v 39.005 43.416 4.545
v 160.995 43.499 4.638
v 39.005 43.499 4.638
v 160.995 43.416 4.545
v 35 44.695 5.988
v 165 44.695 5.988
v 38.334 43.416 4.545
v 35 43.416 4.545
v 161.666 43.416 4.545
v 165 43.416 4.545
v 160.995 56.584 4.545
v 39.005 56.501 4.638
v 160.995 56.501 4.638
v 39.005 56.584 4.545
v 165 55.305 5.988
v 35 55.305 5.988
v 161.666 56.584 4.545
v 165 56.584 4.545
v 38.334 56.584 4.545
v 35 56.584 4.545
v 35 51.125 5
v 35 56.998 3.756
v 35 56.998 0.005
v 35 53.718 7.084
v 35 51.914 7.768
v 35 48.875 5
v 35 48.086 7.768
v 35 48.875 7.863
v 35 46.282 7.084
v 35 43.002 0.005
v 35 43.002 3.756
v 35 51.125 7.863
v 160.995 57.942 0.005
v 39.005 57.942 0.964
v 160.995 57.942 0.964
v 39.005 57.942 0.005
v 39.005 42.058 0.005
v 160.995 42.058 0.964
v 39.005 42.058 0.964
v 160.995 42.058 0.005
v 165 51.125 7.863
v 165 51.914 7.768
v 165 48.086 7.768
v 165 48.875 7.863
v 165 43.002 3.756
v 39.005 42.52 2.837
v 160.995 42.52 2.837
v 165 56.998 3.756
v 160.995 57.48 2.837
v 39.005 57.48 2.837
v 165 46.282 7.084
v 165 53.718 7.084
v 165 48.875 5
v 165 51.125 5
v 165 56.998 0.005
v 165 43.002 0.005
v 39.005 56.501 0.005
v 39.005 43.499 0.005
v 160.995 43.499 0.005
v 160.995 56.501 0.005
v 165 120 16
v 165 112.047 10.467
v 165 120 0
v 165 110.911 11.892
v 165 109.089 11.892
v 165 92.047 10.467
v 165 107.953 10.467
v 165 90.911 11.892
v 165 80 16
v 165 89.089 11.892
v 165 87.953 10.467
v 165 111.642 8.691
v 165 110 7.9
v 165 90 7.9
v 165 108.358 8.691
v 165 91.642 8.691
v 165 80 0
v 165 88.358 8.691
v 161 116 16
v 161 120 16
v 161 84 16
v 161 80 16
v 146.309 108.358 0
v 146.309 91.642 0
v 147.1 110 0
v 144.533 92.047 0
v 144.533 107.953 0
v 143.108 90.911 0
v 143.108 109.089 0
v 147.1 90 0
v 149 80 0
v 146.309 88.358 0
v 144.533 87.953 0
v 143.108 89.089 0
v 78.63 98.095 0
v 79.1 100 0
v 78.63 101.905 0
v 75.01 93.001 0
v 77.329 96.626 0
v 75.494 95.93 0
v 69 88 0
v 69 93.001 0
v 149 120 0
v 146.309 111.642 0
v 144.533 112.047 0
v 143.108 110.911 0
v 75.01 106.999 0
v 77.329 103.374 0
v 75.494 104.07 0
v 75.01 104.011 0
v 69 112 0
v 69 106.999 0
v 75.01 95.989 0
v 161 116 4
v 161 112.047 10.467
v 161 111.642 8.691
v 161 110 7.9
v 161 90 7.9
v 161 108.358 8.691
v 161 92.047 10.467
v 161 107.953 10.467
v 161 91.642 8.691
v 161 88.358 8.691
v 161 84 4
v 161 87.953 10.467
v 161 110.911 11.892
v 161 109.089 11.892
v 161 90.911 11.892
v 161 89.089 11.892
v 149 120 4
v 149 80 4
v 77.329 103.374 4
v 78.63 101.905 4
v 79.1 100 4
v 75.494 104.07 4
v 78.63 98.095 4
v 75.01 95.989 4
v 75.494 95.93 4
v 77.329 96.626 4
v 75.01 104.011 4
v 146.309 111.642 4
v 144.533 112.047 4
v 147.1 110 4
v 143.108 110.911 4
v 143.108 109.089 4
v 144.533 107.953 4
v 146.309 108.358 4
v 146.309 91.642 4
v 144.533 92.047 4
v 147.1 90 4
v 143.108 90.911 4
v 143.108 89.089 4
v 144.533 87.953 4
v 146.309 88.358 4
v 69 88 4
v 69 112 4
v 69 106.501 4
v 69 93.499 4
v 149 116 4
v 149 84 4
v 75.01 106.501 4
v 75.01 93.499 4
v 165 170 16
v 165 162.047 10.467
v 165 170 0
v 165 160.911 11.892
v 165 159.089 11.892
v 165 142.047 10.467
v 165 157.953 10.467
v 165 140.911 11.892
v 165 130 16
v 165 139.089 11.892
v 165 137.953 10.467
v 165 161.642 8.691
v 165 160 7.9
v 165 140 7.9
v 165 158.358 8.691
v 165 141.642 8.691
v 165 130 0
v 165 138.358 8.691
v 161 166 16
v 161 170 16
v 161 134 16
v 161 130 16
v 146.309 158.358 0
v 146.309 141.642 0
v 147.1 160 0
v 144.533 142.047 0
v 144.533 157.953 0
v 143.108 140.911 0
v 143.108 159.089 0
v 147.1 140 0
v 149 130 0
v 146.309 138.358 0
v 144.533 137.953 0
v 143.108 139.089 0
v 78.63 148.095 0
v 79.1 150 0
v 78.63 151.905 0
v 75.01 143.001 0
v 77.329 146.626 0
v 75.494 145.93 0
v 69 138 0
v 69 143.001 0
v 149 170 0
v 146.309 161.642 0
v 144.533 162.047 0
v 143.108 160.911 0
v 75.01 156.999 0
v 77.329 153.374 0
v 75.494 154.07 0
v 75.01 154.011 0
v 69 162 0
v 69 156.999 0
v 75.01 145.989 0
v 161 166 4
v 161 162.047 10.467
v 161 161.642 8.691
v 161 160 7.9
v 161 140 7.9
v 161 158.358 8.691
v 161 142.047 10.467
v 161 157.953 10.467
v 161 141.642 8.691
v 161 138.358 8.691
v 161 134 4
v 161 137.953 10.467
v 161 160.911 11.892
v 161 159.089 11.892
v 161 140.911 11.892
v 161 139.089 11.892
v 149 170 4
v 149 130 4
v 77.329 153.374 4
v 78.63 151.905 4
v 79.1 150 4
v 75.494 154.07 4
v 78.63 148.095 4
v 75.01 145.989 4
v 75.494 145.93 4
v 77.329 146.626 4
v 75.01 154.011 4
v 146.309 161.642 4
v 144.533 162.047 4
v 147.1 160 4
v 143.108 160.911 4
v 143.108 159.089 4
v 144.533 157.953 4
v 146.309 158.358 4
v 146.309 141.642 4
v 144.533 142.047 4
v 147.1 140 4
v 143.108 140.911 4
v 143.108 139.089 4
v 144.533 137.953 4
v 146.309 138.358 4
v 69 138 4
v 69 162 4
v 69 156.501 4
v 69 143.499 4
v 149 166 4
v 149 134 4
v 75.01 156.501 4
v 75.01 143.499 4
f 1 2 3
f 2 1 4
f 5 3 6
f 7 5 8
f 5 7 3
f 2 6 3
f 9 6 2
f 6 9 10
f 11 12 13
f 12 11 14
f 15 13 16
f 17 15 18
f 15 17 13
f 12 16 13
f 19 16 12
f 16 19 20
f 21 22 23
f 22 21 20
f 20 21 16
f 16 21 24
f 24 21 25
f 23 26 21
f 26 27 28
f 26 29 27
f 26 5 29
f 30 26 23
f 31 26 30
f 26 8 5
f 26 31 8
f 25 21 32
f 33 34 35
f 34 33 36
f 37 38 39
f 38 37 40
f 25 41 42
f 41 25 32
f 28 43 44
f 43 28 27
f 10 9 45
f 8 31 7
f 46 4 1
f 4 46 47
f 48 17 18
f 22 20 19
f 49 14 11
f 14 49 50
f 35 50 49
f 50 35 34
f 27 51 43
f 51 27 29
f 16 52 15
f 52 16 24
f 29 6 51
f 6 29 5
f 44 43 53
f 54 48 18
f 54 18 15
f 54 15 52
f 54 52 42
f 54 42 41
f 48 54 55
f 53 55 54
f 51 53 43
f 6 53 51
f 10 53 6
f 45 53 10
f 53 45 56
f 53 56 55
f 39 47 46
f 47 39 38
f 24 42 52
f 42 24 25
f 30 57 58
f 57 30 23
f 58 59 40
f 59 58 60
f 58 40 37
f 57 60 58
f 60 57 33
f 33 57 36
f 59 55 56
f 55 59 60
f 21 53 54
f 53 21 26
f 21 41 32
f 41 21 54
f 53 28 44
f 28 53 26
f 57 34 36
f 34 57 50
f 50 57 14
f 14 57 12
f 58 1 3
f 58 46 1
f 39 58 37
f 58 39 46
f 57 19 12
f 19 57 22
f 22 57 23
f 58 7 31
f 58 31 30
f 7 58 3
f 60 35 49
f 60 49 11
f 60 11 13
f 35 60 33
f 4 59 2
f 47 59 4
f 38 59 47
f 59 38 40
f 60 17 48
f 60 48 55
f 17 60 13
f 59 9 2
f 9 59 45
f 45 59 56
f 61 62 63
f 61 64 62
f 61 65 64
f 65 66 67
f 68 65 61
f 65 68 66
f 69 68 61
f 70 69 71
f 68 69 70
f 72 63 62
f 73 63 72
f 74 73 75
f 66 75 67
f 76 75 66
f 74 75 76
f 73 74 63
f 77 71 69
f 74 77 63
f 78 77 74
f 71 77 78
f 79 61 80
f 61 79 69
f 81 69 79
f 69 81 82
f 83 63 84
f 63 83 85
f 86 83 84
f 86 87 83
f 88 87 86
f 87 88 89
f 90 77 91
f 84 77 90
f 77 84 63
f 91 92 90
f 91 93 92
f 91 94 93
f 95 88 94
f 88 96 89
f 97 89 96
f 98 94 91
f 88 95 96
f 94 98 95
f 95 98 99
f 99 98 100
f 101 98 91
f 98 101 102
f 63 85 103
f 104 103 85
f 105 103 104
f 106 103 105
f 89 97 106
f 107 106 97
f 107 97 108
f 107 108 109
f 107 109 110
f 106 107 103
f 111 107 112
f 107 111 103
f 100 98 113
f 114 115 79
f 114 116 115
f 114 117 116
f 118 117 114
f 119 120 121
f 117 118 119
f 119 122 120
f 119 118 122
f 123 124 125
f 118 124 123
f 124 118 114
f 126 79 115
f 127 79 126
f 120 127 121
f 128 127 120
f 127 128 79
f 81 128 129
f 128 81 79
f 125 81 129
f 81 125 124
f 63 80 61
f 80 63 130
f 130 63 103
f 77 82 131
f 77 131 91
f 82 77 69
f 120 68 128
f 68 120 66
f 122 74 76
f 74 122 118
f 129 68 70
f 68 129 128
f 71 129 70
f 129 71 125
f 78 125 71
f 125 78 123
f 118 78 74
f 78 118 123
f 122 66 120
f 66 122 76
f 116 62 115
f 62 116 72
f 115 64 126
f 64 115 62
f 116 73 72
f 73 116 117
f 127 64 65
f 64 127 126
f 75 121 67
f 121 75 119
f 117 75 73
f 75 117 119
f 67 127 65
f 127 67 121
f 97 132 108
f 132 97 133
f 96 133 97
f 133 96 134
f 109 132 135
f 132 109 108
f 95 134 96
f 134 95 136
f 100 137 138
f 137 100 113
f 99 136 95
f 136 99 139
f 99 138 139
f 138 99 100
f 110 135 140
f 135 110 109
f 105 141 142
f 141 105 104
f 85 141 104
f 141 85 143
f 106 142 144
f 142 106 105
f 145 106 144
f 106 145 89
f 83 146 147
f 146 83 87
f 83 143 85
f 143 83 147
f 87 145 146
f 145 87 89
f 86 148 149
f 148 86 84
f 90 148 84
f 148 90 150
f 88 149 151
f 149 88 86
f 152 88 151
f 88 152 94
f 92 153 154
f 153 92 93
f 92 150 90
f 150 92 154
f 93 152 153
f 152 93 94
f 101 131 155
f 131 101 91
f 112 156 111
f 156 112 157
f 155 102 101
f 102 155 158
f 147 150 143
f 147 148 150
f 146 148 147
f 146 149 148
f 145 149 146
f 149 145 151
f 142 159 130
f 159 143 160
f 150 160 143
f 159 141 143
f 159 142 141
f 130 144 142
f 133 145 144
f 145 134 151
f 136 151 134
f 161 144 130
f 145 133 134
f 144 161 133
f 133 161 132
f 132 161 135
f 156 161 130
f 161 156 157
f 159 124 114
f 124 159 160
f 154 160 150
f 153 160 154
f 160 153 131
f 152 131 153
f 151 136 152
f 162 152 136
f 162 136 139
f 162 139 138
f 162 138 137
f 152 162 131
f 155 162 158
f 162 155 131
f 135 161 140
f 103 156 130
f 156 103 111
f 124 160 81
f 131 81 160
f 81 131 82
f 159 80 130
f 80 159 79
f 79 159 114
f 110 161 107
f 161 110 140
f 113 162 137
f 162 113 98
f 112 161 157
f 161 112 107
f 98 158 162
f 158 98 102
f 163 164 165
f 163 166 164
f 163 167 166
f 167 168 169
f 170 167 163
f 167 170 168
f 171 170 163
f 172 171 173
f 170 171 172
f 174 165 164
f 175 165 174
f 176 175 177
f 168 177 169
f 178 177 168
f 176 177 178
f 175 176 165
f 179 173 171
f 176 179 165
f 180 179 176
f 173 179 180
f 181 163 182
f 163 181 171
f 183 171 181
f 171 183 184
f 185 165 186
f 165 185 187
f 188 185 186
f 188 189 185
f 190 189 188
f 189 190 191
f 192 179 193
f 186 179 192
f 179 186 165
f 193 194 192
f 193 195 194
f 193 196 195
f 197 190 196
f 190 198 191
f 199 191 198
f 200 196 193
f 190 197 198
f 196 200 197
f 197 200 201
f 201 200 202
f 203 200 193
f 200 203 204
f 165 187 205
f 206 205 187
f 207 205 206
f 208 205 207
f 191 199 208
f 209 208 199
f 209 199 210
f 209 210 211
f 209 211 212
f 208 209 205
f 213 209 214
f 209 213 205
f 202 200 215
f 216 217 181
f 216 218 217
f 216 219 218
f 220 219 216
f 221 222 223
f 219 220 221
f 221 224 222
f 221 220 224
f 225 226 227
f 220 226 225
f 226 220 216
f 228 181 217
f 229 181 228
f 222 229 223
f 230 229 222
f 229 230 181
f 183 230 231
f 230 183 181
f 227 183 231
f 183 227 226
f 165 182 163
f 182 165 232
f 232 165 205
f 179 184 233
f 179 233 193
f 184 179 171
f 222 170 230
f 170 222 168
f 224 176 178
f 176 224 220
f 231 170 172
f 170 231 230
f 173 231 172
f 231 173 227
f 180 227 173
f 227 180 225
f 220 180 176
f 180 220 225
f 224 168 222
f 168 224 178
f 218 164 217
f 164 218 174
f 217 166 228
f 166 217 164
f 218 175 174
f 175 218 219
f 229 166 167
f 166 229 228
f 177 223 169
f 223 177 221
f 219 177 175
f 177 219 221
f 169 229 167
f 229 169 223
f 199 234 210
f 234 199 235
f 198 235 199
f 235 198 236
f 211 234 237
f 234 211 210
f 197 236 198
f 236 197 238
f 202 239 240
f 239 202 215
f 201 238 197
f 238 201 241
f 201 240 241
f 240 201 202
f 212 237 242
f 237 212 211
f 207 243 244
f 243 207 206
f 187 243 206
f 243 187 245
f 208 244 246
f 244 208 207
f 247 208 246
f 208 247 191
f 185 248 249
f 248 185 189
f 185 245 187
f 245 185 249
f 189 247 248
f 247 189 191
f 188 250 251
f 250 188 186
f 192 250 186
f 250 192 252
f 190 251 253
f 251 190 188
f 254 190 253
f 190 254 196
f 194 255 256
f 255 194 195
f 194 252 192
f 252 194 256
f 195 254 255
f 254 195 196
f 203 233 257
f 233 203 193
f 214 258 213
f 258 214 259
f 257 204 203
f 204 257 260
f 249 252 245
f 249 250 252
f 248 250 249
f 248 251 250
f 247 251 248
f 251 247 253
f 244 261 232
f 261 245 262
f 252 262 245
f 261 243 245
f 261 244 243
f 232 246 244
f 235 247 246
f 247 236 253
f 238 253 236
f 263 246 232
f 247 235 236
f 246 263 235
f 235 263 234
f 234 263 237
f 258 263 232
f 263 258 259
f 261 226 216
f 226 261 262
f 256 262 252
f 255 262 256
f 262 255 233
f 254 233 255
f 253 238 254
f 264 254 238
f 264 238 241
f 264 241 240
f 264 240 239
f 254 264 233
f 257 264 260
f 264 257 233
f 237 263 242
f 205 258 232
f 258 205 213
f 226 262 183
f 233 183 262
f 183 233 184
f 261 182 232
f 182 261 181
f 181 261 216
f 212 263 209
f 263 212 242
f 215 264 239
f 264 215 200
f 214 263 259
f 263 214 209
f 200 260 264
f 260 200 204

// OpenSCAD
// file: reader-defs.scad
// Default dimensions

m4 = 4.2 ;              // Close clearance hole for M4 screw
m8 = 8.2 ;              // Close clearance hole for M8 screw


// Winder

shaft_d = m8 ;          // Shaft diameter
core_d = 18 ;           // Core diameter
bevel_d = 30 ;          // Bevel inner diameter
outer_d = 40 ;          // Spool outer diameter
crank_hub_d = 25 ;      // Diameter of crank hub
handle_hub_d = 10 ;     // Diameter of handle end of crank
handle_d = m4 ;         // Diameter of handle
base_fix_d = m4 ;       // Diameter of base fixing screw hole

crank_l = 40 ;          // Length of crank (between shaft and handle centres

side_t = 4 ;            // Thickness of spool side
side_rim_t = 2 ;        // Thickness of spool side rim (beveled)
crank_hub_t = 6 ;       // Thickness of crank hub
crank_arm_t = 4 ;       // Thickness of crank arm

spool_w_all = 112 ;     // Width of spool (overall between ends)
spool_w_end = 20 ;      // Width of spool (to inside of end)
spool_w_mid = spool_w_all - 2*spool_w_end ;
                        // width of spool middle spacer

shaft_nut_af = 13 ;     // Nut diameter across faces
shaft_nut_t  = 4 ;      // Nut thickness

handle_nut_af = 7 ;     // Nut diameter across faces
handle_nut_t  = 3 ;     // Nut thickness

winder_side_h = 50 ;    // Height to centre of winder shaft
winder_side_w = 40 ;    // Width base of winder side support
winder_side_t = 4 ;     // Thickness of winder side support
winder_apex_d = 16 ;    // Radius of apex of winder side support
winder_base_t = 16 ;    // Thickness at base of winder

// Reader bridge

read_l = spool_w_all ;  // Reader bridge length (inner)
read_w = 16 ;           // Width of bridge
read_extra_w = 5 ;      // Extra width for reader bridge for tie-down
read_h = 90 ;           // Height of reader bridge above base plate
read_side_t = side_t ;  // Reader bridge side support thickness
read_side_base_t = 16 ; // Reader bridge side support thickness at base 
read_total_l     = read_l + 2*(read_side_t + read_extra_w) ;
read_side_apex_w = 24 ;
read_side_apex_h = 6 ;
read_side_base_w = 40 ;
read_side_peg_d  = m4 ;



read_groove_w = 2.25 ;  // EL wire goove width
read_groove_d = 3 ;     // EL wire groove depth

// Parts for holding phone camera

hold_side_l = 80 ;      // Length is side of holder
hold_side_h = 10 ;      // Height of side above base
hold_side_t1 = 7 ;      // Thickness of side at base
hold_side_t2 = 8 ;      // Thickness of side at top

hold_base_l1 = 60 ;     // Length of base near side
hold_base_l2 = 50 ;     // Length of base towards centre
hold_base_t = 8 ;       // Thickness of base (to accommodate hole)
hold_base_w = 20 ;      // Width of base piece

hold_rail_p = 40 ;      // Distance between rail holes
hold_rail_d = m4 ;      // Diameter of rail holes

hold_fix_p = 25 ;       // Distance between fixing holes
hold_fix_d = m4 ;       // Diameter of fixing holes
hold_fix_o = 30 ;       // Offset from vertical rod to holder fixing holes

hold_fix_t = 6 ;        // Thickness of phone holder-to-rod fixing
hold_fix_w = 8 ;        // Width of phone holder-to-rod fixing
hold_fix_l = 80 ;       // Length of phone holder-to-rod fixing
hold_fix_rod_d = 8 ;    // Diameter of phone holder support rod
hold_fix_hub_d = 16 ;   // Diameter of phone holder support hub

hold_fix_plate_l = hold_fix_o + hold_fix_rod_d*2 ;
hold_fix_plate_w = hold_fix_p + hold_fix_rod_d*2 ;

// Bracket to hold phone camera support rod

rod_support_h = 50 ;
rod_support_t = side_t ;    // Rod support side support thickness
rod_support_base_t = 20 ;   // Rod support side support thickness at base 
rod_support_base_o = 75 ;   // X-offset from reader bar to phone support rod

rod_support_apex_w = 24 ;
rod_support_base_w = 45 ;
rod_support_shell_w = 40 ;

// Baseplate dimensions

base_l   = 240 ;
base_w   = 130 ;
base_t   = 4 ;
border_w = 8 ;
shell_h  = 8 ;
brace_w  = 8 ;
mount_l  = winder_side_w ;
mount_w  = winder_base_t ;
hole_d   = m4 ;

foot_lx  = 36 ;     // At top surface of baseplate: tapers away to foot
foot_ly  = 26 ;
foot_h   = 14 ;

plate_px = base_l/2 ;
plate_py = base_w/2 ;

// Misc
delta = 0.01 ;          // Small value to force overlap
spacing = outer_d+10 ;  // Object spacing (layout pitch)
part_gap = 10 ;         // Spacing between exploded assembly parts
// main file
// monotype-tape-reader-winder.scad

include <reader-defs.scad> ;

use <reader-common.scad> ;

module layout_reader_bridge() {
    // Reader bridge and support
    translate([
    0,1*spacing,0])
        tape_reader_bridge() ;
    translate([-winder_side_h/2,spacing*2,0])
        read_side_support() ;
    translate([-winder_side_h/2,3*spacing,0])
        read_side_support() ;
}

module layout_reader_bridge_dovetailed() {
    // Reader bridge and support
    translate([
    0,1*spacing,0])
        tape_reader_bridge_dovetailed() ;
    translate([-winder_side_h/2,spacing*2,0])
        read_side_support_dovetailed() ;
    translate([-winder_side_h/2,3*spacing,0])
        read_side_support_dovetailed() ;
}

// translate([spacing*2, 0, 0]) layout_reader_bridge() ;
translate([spacing*2, 0, 0]) layout_reader_bridge_dovetailed() ;

module tape_reader_bridge_dovetailed() {
    module bridge_dovetail_cutout() {
        translate([-read_total_l/2+read_side_t,0,0])
            dovetail_tongue_cutout(
                read_side_t, read_w-3, read_w-2, read_side_apex_w, read_side_apex_h
        ) ;
    }
    difference() {
        tape_reader_bridge() ;
        bridge_dovetail_cutout() ;
        mirror(v=[1, 0, 0]) bridge_dovetail_cutout() ;
    }
}

module read_side_support_dovetailed() {
    difference() {
        read_side_support() ;
        translate([0,0,read_side_t])
            rotate([0,-90,0])
                dovetail_socket_cutout(read_side_t, read_w-3, read_w-2, read_side_apex_h) ;
    }
}

// tape_reader_bridge() ;
// tape_reader_bridge_dovetailed() ;
// read_side_support_dovetailed() ;
